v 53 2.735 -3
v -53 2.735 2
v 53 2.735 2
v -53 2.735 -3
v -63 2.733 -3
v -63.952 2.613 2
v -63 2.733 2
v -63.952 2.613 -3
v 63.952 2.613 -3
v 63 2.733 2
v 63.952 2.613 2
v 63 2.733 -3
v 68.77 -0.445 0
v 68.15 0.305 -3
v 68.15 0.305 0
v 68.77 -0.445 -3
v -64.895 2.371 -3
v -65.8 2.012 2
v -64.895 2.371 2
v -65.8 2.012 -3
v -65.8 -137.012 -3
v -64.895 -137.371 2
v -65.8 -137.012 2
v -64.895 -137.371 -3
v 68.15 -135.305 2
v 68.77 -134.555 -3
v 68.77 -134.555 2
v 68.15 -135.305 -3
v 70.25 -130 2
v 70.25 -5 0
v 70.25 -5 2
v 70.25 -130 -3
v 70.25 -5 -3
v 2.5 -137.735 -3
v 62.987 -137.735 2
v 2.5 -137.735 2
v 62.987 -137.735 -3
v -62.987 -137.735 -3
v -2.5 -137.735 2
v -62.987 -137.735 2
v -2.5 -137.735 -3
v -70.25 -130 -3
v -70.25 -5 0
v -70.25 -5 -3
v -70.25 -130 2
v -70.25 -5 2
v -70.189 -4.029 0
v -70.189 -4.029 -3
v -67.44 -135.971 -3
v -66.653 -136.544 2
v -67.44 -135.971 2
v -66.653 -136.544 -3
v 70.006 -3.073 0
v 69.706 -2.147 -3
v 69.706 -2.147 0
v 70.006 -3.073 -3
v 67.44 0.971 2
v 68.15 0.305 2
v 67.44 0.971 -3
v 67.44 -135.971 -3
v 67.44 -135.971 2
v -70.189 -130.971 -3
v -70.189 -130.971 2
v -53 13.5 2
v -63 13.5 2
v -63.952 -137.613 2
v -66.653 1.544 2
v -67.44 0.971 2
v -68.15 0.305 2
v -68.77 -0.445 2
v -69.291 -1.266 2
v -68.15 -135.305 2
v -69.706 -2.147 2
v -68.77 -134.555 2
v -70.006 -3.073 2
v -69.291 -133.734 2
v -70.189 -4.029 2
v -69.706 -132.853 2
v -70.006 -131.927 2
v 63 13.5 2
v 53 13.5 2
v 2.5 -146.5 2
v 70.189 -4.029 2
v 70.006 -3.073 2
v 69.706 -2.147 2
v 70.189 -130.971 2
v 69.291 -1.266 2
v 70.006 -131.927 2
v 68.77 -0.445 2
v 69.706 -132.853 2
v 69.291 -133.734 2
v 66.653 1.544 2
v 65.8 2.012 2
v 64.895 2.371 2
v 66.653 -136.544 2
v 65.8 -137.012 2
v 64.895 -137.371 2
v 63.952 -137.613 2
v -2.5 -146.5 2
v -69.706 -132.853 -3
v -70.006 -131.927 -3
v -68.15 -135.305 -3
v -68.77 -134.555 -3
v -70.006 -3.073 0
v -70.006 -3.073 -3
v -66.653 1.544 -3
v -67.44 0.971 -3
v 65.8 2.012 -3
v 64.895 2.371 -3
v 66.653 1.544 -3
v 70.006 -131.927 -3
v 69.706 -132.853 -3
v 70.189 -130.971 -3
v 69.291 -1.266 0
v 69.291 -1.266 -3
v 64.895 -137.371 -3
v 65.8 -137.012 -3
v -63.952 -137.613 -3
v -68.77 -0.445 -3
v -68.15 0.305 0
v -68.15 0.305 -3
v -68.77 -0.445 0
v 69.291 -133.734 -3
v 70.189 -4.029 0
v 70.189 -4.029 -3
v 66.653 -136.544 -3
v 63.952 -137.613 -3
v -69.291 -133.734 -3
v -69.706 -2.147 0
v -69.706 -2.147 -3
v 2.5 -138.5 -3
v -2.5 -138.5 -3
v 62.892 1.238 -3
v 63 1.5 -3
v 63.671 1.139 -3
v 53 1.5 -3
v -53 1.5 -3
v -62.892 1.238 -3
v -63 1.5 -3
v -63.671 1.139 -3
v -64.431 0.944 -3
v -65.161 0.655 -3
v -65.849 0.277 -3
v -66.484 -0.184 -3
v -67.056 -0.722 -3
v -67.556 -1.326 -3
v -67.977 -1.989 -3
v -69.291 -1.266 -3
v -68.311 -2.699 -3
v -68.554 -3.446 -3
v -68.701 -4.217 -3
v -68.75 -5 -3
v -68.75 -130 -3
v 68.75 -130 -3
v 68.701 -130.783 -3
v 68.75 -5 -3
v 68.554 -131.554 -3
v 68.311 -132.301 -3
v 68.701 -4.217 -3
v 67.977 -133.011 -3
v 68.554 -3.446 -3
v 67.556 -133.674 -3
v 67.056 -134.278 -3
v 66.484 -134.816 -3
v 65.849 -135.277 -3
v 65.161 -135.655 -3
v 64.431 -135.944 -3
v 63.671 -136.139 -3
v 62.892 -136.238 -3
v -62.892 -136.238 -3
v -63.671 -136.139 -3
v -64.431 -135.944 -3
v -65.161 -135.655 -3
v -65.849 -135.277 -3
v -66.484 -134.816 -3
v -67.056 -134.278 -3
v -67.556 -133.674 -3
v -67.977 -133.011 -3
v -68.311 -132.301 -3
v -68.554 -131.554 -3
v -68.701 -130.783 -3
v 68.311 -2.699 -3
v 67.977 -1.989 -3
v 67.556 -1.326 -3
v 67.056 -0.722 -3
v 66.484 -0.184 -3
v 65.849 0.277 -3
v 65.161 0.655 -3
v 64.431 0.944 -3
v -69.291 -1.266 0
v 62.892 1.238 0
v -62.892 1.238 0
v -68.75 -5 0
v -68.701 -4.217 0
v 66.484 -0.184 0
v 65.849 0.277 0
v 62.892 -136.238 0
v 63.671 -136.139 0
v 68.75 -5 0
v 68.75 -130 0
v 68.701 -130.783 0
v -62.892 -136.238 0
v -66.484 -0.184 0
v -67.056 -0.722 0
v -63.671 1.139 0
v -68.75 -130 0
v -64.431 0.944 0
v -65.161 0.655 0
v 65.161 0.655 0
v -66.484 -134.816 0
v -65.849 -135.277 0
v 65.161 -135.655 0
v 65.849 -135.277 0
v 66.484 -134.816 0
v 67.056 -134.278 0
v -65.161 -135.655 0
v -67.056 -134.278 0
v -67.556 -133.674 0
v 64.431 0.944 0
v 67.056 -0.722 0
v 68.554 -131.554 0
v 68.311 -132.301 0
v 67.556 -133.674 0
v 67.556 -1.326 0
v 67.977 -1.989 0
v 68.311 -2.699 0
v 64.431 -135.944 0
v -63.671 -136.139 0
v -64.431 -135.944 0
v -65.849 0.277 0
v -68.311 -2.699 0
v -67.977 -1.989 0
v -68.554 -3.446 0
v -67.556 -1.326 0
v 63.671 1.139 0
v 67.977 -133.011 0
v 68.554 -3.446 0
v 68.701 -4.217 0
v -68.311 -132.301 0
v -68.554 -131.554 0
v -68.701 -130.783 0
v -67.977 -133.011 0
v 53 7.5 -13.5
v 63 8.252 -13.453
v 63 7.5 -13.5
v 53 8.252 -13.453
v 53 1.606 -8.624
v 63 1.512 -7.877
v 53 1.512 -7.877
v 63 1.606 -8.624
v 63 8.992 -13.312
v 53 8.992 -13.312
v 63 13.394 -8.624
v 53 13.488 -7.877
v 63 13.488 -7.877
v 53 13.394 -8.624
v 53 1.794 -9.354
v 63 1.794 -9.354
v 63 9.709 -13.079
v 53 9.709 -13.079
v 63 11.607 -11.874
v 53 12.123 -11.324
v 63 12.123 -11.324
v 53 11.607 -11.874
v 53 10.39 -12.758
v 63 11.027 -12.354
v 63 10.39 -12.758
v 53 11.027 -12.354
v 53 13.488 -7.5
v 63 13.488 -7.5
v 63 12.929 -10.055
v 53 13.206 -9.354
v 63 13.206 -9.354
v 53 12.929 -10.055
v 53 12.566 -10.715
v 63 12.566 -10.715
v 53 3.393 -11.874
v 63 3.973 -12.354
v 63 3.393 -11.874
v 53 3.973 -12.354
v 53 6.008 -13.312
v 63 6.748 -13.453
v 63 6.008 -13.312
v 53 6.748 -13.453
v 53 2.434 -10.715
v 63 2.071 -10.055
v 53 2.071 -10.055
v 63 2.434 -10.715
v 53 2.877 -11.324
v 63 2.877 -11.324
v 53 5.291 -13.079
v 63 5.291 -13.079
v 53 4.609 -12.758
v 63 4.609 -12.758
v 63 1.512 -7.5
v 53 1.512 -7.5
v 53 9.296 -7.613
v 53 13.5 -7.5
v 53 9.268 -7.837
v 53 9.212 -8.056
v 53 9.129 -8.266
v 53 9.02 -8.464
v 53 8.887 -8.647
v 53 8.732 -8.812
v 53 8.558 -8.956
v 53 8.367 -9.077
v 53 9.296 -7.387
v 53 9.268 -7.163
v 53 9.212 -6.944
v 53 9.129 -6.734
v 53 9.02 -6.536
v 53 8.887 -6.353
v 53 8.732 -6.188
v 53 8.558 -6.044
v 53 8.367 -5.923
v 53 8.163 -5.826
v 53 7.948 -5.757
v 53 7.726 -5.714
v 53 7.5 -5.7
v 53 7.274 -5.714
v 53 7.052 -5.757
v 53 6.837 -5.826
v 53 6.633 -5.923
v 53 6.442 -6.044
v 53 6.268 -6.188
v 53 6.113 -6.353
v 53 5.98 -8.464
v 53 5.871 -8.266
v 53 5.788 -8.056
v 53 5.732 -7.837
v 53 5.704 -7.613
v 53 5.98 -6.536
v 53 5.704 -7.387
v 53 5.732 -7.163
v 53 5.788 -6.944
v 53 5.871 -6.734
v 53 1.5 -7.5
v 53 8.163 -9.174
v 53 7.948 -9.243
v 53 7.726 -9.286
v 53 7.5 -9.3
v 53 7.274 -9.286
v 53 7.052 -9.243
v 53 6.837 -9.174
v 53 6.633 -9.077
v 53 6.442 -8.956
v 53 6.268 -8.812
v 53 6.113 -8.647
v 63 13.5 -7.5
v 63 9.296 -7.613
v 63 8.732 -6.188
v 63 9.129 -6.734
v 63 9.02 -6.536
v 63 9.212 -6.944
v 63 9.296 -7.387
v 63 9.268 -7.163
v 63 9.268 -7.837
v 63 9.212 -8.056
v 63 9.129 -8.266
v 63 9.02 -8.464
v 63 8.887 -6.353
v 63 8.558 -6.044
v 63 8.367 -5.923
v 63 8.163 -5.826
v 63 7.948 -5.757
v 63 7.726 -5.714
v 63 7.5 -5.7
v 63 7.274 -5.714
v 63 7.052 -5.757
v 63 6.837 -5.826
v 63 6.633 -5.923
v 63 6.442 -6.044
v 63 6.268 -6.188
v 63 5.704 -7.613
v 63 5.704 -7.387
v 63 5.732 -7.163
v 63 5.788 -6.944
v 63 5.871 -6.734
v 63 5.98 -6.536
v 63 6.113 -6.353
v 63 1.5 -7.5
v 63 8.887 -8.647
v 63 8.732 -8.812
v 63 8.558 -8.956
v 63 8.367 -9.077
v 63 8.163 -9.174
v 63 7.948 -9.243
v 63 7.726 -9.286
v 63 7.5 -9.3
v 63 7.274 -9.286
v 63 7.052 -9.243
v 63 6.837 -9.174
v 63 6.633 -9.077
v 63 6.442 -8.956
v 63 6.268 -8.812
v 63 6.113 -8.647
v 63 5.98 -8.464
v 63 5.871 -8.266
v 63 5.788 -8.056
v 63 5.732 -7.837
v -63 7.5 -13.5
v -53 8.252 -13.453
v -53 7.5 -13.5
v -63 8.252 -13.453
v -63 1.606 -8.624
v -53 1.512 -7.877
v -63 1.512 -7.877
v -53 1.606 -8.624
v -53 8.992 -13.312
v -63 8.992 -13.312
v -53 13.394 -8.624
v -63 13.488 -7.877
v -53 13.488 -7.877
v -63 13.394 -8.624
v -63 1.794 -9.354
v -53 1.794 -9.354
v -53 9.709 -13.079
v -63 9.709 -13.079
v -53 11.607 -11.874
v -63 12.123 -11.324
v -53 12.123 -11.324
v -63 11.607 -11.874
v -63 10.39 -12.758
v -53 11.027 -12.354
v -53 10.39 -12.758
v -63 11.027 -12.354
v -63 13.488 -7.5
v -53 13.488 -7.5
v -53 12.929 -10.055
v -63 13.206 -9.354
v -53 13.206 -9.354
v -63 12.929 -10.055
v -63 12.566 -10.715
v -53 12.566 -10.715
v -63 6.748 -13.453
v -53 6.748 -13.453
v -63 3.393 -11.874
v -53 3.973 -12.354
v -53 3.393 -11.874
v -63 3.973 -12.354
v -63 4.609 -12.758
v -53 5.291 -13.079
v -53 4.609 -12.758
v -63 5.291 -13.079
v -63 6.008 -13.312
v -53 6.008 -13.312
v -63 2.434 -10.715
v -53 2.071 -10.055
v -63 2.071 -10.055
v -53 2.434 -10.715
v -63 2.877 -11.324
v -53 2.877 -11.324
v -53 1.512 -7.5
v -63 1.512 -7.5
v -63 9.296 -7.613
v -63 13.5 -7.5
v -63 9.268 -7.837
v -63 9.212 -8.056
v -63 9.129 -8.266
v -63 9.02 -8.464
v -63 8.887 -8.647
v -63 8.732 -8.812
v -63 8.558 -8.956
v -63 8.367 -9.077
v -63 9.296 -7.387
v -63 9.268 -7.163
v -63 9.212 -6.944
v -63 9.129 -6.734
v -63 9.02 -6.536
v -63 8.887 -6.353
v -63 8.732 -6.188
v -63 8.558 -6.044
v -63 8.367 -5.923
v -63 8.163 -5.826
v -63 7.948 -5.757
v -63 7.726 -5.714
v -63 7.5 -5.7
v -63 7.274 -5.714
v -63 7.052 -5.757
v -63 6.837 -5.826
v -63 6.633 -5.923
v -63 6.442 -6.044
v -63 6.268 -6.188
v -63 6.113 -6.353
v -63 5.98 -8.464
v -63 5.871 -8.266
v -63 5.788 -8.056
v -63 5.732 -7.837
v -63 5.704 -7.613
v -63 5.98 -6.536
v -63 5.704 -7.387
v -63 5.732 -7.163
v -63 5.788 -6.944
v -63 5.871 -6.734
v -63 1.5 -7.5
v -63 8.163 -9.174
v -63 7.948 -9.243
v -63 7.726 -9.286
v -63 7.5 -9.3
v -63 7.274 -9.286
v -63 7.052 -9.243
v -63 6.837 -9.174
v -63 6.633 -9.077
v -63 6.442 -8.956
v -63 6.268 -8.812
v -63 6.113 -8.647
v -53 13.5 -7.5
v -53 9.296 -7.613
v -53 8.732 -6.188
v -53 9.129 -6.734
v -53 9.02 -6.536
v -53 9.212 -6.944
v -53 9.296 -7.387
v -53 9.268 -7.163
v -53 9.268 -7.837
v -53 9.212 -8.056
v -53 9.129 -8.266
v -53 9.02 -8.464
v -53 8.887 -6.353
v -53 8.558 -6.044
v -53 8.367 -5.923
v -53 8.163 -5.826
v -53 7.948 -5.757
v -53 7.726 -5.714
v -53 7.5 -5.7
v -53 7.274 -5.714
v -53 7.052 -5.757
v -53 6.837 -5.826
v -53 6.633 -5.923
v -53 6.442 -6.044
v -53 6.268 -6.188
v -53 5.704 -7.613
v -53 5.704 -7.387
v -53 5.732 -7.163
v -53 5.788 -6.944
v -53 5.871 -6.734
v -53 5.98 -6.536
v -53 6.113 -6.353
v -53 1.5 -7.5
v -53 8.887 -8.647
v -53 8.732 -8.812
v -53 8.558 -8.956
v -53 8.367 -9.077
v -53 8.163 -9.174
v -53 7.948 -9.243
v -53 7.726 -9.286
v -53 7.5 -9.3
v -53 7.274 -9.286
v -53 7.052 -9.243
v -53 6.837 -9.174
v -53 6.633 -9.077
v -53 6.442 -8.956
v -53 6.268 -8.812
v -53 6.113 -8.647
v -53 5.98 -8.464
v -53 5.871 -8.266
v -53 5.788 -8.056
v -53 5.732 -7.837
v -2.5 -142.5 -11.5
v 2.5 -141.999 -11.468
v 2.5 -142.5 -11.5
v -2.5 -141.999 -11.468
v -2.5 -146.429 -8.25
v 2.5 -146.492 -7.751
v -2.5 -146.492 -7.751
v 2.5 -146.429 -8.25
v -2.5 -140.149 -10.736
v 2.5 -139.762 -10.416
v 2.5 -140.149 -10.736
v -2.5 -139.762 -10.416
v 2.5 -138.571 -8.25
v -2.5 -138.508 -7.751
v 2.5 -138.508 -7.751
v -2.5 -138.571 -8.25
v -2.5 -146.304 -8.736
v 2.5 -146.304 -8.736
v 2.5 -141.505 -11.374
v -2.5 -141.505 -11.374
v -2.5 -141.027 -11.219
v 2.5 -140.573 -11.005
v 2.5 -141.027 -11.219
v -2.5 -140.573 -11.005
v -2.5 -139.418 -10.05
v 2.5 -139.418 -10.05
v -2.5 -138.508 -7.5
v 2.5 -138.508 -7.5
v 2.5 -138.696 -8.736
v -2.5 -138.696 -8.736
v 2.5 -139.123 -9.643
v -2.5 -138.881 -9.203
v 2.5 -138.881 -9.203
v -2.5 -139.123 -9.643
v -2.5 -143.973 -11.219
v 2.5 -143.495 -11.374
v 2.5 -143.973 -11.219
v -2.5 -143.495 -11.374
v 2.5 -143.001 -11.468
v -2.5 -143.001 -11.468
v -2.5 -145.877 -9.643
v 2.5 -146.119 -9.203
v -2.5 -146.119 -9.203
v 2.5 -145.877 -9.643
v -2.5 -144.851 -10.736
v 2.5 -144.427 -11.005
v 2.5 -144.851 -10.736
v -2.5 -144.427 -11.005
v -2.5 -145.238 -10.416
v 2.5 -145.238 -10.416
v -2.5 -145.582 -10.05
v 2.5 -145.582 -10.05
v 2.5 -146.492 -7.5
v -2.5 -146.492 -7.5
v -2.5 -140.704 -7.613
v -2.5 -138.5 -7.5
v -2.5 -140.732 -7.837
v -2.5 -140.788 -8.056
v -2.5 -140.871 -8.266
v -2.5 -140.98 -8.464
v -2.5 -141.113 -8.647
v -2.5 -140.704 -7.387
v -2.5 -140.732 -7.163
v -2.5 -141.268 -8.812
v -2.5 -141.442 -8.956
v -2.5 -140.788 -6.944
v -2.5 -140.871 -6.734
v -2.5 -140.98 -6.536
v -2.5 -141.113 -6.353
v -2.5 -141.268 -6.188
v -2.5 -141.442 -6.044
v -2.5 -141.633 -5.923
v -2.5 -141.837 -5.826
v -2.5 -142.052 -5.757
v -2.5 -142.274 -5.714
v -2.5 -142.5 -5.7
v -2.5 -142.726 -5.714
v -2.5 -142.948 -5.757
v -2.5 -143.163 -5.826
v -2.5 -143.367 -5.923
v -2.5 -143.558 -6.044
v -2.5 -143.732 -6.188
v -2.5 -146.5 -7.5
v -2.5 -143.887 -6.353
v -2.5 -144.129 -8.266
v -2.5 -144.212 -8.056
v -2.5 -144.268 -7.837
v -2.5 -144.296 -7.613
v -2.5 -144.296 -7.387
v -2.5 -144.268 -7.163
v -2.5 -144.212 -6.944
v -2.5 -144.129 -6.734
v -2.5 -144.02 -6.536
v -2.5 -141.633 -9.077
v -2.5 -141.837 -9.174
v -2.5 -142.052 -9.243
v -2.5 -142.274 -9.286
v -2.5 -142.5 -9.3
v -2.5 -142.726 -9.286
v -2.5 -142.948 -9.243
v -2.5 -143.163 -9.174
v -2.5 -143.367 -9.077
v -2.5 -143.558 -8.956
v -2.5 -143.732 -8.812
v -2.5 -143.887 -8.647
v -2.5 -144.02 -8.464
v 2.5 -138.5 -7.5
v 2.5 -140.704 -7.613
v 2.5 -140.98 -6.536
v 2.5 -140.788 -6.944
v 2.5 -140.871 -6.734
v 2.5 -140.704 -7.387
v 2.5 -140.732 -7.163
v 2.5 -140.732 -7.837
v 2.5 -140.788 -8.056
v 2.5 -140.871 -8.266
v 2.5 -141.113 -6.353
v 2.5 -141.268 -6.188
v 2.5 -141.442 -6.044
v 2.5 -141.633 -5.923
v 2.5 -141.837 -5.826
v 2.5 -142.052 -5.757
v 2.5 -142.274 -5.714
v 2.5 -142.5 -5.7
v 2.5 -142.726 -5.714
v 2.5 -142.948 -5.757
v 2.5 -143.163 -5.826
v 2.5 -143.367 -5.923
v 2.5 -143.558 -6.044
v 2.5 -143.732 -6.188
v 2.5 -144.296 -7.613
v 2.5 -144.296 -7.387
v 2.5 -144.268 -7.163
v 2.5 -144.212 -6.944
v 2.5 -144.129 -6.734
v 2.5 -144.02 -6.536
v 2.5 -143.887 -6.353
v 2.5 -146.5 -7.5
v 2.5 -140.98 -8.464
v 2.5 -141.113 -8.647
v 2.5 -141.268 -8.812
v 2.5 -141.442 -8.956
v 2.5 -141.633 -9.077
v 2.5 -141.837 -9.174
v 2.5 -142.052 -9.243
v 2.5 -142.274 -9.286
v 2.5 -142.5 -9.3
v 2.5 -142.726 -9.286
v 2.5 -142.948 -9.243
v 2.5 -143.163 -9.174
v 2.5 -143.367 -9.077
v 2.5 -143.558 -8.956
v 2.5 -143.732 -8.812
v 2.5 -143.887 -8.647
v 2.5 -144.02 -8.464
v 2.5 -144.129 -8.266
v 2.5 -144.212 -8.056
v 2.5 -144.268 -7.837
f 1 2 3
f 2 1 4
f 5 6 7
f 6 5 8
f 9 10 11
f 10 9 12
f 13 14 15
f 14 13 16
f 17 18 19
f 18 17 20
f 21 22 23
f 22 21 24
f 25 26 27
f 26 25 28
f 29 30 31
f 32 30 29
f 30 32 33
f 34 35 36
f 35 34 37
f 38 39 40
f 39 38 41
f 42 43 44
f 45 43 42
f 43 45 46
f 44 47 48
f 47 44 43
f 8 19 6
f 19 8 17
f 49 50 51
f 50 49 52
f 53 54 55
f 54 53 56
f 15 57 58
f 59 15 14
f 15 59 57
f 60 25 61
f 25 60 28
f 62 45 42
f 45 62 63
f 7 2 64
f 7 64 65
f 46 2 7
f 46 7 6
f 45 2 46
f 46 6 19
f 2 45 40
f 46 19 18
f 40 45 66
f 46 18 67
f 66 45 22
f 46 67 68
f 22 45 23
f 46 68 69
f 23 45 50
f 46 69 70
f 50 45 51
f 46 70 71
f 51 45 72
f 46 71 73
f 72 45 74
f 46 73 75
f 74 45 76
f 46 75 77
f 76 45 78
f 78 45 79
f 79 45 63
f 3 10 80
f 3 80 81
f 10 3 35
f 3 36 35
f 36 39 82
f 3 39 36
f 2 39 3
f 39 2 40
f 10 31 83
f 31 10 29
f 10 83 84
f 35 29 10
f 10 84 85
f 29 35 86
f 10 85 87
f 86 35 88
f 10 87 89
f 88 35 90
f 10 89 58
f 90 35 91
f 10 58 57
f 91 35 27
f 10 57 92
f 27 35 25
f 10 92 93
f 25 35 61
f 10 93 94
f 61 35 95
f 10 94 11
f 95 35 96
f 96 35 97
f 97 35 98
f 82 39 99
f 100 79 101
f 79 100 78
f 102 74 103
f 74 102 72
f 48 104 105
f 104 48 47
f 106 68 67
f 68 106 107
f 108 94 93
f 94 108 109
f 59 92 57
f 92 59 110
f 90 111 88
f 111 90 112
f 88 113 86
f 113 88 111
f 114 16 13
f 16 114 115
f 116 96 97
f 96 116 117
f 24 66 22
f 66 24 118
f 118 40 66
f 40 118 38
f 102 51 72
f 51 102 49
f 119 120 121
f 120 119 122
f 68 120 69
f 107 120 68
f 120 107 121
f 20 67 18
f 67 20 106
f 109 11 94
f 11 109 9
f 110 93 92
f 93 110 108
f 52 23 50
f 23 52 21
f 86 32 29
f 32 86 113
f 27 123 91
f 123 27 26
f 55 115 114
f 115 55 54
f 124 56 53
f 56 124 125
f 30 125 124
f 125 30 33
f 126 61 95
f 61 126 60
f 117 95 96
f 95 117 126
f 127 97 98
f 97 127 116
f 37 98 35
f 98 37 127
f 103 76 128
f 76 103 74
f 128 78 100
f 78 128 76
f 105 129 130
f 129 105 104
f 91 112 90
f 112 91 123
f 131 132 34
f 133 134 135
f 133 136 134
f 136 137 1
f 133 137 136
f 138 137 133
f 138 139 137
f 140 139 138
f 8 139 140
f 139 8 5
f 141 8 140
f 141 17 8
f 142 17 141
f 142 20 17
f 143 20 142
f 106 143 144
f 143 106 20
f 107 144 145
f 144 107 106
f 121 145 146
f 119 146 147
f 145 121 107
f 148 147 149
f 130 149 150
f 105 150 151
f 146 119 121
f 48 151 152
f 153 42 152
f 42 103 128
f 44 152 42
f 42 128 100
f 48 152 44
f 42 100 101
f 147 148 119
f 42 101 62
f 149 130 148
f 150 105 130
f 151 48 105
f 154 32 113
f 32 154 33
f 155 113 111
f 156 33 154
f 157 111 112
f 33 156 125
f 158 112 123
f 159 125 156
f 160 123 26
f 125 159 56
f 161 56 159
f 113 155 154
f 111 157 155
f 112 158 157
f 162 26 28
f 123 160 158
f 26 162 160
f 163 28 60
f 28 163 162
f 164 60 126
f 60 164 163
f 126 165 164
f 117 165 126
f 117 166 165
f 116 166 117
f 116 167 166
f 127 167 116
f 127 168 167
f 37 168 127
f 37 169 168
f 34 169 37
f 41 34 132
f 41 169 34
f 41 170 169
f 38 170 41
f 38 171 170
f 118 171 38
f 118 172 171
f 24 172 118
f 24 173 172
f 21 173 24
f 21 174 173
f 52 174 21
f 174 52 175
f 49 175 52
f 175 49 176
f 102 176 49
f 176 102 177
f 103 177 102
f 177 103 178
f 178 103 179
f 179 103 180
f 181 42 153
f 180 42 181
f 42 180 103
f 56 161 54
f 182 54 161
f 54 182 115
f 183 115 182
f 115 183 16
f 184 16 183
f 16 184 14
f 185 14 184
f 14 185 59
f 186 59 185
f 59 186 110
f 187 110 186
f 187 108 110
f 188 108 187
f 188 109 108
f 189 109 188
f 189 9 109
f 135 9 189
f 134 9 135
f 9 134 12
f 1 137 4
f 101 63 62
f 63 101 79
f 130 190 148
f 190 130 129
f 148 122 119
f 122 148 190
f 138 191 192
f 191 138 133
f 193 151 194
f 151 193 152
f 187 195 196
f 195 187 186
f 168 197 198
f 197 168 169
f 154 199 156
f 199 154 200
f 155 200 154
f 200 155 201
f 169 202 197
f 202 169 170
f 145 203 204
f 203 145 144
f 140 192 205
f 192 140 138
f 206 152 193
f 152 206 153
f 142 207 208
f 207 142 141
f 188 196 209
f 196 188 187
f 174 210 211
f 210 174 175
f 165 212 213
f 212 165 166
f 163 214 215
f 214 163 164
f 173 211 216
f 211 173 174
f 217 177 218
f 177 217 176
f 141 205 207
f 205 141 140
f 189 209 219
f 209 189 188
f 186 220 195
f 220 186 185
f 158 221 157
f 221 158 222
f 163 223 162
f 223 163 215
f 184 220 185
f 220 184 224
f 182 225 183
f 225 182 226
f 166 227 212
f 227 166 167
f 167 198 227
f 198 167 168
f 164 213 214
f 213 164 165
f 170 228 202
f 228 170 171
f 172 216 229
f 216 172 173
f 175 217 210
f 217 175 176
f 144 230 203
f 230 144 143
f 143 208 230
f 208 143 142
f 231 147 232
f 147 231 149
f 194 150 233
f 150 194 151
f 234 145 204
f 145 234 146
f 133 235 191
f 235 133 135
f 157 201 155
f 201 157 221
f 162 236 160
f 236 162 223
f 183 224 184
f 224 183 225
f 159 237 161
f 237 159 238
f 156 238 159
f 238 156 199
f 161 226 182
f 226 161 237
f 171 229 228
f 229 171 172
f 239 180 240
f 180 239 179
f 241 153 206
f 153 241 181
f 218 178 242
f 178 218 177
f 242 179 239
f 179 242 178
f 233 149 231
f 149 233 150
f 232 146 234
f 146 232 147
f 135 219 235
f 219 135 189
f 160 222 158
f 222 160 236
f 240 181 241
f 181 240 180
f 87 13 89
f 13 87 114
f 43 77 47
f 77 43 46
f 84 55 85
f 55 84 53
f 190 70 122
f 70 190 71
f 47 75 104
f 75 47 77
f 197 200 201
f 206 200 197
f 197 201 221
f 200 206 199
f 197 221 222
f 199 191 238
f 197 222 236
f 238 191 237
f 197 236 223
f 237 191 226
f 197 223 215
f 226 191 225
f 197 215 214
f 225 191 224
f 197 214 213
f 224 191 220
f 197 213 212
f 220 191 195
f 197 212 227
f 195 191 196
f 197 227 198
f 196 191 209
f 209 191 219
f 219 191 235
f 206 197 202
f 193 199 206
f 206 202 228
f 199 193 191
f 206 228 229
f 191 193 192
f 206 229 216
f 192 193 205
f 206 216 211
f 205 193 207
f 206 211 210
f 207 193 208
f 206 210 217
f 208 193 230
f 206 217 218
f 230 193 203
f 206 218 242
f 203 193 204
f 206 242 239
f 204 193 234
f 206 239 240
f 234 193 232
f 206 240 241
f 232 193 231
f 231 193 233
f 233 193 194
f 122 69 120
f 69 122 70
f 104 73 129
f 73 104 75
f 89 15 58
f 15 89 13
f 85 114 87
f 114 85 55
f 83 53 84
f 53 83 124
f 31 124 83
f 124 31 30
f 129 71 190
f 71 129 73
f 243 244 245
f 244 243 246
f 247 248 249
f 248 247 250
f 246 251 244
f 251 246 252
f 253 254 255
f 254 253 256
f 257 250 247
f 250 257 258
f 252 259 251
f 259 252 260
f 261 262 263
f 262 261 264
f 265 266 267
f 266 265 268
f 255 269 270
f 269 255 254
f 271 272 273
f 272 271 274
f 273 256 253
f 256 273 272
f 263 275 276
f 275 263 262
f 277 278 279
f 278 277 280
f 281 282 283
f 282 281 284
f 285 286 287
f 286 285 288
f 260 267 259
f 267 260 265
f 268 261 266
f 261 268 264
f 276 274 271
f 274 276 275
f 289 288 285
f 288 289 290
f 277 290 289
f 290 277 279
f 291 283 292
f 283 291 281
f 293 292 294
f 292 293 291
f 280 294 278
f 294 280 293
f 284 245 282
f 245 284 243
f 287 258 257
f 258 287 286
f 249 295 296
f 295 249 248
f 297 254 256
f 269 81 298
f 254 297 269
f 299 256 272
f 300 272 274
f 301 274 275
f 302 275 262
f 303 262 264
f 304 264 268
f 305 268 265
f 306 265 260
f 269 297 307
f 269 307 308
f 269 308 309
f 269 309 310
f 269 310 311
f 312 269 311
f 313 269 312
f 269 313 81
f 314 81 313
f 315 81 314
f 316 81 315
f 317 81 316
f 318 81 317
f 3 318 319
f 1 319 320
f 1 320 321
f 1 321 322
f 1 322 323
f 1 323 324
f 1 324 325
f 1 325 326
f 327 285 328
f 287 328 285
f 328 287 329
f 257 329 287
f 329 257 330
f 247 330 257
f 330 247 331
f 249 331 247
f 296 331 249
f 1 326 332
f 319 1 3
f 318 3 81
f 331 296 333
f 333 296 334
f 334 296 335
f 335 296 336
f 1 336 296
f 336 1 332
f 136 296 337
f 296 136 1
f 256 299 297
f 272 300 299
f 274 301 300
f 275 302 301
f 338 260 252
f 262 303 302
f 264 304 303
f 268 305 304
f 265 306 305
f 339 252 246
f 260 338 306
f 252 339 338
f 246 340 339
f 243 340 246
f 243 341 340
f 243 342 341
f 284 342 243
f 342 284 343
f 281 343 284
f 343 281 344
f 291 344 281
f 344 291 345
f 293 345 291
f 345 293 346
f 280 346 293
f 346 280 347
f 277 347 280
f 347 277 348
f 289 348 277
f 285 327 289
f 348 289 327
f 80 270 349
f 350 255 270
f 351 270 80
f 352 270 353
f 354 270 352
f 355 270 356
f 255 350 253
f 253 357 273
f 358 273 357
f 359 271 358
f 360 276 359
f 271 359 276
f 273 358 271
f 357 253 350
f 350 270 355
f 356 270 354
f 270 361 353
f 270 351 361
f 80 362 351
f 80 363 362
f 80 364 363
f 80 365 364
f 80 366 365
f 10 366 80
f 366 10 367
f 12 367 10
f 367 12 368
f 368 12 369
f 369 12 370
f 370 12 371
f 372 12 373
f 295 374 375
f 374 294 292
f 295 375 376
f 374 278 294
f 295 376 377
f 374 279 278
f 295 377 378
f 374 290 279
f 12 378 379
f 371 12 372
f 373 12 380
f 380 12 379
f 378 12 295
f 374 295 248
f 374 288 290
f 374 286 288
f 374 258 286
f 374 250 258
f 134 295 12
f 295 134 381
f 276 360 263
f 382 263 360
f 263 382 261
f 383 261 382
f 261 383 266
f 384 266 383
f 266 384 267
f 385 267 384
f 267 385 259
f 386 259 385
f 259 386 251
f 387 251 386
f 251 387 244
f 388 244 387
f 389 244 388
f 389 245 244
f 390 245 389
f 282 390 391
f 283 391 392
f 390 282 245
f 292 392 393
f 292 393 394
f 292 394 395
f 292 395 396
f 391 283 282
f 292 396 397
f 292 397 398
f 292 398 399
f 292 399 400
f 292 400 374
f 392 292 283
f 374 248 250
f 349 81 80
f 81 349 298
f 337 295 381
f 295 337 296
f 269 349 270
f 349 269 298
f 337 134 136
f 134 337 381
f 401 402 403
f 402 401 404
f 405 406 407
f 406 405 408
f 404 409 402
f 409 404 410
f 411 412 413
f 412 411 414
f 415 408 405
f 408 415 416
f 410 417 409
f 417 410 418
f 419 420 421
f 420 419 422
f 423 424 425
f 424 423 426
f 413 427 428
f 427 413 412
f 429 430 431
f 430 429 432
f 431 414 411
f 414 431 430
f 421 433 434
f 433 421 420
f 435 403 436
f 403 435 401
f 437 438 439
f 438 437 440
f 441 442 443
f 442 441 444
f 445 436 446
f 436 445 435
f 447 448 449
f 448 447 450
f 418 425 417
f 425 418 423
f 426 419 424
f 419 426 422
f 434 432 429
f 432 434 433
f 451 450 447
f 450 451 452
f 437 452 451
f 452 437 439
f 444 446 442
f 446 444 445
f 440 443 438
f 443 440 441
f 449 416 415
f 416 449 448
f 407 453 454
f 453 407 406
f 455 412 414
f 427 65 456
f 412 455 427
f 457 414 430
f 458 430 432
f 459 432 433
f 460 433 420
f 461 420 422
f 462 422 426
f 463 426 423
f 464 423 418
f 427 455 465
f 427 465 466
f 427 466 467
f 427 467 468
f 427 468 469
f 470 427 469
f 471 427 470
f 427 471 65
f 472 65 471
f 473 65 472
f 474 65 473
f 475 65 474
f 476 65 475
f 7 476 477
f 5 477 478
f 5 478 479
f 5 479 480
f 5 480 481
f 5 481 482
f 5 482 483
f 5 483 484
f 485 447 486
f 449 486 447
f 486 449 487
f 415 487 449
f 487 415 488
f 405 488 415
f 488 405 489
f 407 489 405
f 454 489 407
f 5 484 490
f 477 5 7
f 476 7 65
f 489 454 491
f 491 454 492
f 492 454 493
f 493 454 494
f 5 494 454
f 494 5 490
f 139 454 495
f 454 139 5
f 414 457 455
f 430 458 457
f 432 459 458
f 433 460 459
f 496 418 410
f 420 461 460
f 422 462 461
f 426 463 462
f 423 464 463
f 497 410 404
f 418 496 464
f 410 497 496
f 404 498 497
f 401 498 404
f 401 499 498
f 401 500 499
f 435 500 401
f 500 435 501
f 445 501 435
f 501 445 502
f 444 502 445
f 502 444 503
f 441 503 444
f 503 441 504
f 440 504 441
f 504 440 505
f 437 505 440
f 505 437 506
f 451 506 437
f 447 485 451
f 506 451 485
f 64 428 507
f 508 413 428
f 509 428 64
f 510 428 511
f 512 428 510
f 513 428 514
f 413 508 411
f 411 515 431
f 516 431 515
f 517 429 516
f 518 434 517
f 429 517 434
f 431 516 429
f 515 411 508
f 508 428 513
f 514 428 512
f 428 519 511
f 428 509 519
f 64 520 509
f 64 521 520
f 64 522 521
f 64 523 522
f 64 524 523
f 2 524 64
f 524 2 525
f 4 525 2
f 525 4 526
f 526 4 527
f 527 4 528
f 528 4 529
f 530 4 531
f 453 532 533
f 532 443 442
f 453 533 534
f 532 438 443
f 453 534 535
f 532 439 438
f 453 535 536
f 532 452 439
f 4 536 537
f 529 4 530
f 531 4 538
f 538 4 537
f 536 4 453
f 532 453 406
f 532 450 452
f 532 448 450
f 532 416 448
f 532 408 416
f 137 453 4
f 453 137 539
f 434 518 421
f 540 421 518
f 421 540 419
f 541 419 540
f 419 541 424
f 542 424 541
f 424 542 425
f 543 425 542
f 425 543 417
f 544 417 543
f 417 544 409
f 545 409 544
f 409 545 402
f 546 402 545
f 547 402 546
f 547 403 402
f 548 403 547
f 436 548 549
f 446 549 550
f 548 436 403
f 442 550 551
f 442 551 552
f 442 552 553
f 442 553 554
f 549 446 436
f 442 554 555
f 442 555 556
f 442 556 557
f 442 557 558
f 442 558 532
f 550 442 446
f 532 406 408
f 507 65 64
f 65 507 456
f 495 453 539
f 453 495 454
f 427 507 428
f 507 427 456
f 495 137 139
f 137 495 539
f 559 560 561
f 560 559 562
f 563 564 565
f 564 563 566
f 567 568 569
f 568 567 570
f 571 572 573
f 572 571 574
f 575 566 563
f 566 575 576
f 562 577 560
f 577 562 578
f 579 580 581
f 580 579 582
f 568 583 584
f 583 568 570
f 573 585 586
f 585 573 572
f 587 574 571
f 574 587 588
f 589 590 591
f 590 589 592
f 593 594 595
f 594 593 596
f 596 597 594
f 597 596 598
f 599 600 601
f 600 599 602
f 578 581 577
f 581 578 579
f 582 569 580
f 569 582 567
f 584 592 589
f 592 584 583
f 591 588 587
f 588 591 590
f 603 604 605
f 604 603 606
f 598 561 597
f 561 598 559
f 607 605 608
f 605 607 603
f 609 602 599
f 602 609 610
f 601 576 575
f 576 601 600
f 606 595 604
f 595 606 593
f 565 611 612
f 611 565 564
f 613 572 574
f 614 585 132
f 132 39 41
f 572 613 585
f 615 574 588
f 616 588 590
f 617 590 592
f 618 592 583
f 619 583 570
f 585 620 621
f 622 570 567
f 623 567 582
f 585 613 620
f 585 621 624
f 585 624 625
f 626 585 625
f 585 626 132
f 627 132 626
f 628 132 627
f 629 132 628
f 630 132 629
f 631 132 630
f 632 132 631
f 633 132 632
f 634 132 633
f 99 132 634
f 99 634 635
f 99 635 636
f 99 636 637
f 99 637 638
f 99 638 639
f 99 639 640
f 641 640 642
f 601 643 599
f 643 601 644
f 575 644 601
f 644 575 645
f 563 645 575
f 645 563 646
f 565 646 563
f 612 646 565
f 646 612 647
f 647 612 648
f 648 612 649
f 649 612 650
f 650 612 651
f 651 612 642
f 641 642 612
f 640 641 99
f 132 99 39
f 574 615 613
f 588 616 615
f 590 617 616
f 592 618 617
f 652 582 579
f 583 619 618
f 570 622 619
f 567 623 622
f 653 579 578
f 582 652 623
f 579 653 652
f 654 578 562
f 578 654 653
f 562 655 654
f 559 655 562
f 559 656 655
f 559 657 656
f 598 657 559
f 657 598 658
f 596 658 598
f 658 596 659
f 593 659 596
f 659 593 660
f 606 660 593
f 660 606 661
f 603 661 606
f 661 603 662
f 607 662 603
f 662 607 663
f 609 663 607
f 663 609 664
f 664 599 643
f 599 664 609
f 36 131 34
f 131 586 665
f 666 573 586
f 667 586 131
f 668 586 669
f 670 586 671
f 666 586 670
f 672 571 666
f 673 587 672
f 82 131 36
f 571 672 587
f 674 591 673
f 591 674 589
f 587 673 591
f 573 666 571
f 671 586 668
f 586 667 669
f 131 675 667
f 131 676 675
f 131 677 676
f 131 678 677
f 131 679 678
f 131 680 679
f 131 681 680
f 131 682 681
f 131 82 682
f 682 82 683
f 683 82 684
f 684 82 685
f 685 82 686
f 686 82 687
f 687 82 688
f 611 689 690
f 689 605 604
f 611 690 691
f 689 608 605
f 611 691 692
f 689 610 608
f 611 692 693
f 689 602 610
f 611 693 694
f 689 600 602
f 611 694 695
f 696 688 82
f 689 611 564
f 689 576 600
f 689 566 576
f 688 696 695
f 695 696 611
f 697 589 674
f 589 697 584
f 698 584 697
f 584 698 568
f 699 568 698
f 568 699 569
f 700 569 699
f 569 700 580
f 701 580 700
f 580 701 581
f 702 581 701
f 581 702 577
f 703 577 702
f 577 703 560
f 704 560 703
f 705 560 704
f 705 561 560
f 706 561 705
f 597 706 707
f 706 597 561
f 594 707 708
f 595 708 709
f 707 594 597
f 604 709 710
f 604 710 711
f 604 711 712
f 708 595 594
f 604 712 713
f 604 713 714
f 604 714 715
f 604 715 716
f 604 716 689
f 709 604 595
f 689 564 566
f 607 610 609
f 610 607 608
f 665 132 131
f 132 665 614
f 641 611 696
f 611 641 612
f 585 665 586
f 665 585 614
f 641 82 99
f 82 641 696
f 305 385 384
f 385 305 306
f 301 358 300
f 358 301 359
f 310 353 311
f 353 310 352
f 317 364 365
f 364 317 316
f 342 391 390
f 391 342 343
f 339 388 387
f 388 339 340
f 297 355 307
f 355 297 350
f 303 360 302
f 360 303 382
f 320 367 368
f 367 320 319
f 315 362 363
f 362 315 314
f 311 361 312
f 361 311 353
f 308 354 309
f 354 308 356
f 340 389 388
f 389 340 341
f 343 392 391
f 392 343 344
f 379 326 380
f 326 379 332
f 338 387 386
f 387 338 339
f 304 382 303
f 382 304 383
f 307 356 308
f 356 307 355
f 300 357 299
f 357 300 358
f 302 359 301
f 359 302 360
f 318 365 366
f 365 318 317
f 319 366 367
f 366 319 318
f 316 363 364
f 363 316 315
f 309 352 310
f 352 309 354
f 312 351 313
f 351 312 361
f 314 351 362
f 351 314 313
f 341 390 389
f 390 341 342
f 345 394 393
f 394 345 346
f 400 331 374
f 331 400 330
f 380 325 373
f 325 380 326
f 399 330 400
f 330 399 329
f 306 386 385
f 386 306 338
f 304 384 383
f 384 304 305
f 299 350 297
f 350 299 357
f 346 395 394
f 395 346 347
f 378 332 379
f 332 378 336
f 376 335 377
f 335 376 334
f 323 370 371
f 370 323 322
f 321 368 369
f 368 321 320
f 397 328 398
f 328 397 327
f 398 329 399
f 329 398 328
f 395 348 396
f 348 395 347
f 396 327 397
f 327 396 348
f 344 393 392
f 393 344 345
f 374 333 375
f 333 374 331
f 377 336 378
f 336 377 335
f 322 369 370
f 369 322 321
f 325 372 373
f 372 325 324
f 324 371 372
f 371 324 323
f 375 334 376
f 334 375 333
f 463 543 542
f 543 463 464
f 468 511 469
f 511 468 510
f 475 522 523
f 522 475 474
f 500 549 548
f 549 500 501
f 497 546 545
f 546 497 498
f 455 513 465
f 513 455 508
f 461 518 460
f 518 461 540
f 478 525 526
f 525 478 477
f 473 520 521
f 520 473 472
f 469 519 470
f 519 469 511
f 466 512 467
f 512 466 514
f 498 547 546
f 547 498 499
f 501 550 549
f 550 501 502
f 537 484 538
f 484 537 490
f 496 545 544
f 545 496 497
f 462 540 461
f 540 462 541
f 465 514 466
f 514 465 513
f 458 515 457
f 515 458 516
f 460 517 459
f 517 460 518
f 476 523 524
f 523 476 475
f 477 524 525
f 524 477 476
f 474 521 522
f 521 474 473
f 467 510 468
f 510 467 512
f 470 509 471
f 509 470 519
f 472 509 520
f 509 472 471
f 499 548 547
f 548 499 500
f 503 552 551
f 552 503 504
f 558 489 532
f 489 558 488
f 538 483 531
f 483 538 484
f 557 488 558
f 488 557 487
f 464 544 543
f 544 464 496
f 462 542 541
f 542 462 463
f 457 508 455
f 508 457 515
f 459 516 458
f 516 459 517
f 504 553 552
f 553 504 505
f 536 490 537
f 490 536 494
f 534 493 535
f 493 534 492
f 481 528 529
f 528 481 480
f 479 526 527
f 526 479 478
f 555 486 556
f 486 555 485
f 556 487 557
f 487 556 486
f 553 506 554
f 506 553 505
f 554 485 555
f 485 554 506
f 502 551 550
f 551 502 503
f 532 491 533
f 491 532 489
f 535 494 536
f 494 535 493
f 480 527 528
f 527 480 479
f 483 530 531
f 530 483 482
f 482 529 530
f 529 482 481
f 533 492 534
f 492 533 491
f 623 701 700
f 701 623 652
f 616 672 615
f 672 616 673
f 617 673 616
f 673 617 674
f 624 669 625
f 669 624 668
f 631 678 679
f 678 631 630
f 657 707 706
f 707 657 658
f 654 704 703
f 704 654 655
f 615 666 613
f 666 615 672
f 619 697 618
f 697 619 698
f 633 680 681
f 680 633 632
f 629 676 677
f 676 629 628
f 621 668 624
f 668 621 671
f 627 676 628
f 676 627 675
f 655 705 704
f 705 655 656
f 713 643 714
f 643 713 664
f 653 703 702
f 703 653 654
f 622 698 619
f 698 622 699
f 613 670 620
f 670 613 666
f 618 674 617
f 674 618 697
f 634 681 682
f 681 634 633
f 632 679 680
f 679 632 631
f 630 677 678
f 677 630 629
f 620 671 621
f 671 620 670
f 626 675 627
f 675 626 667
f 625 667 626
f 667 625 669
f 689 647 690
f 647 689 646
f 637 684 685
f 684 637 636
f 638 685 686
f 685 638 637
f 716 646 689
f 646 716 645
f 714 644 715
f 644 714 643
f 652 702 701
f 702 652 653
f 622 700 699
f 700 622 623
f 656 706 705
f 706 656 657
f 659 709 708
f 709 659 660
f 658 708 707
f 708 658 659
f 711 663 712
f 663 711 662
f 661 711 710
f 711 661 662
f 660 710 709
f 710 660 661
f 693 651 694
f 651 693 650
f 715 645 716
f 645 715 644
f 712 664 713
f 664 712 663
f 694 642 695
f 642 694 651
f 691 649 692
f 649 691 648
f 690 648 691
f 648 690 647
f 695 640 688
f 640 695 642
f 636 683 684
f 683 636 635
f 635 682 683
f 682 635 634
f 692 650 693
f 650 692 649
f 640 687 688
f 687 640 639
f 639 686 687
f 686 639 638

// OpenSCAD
$fn = 50;


difference() {
	union() {
		translate(v = [0, -67.5000000000, -3]) {
			rotate(a = [0, 0, 0]) {
				difference() {
					union() {
						hull() {
							translate(v = [-62.5000000000, 62.5000000000, 0]) {
								cylinder(h = 5, r = 7.7500000000);
							}
							translate(v = [62.5000000000, 62.5000000000, 0]) {
								cylinder(h = 5, r = 7.7500000000);
							}
							translate(v = [-62.5000000000, -62.5000000000, 0]) {
								cylinder(h = 5, r = 7.7500000000);
							}
							translate(v = [62.5000000000, -62.5000000000, 0]) {
								cylinder(h = 5, r = 7.7500000000);
							}
						}
					}
					union() {
						hull() {
							translate(v = [-62.5000000000, 62.5000000000, 0]) {
								cylinder(h = 5, r = 6.2500000000);
							}
							translate(v = [62.5000000000, 62.5000000000, 0]) {
								cylinder(h = 5, r = 6.2500000000);
							}
							translate(v = [-62.5000000000, -62.5000000000, 0]) {
								cylinder(h = 5, r = 6.2500000000);
							}
							translate(v = [62.5000000000, -62.5000000000, 0]) {
								cylinder(h = 5, r = 6.2500000000);
							}
						}
					}
				}
			}
		}
		translate(v = [0, -67.5000000000, 0]) {
			hull() {
				translate(v = [-62.5000000000, 62.5000000000, 0]) {
					cylinder(h = 2, r = 7.7500000000);
				}
				translate(v = [62.5000000000, 62.5000000000, 0]) {
					cylinder(h = 2, r = 7.7500000000);
				}
				translate(v = [-62.5000000000, -62.5000000000, 0]) {
					cylinder(h = 2, r = 7.7500000000);
				}
				translate(v = [62.5000000000, -62.5000000000, 0]) {
					cylinder(h = 2, r = 7.7500000000);
				}
			}
		}
		translate(v = [53.0000000000, 7.5000000000, -7.5000000000]) {
			rotate(a = [0, 90, 0]) {
				cylinder(h = 10, r = 6.0000000000);
			}
		}
		translate(v = [53.0000000000, 1.5000000000, -7.5000000000]) {
			cube(size = [10, 12, 7.5000000000]);
		}
		translate(v = [53.0000000000, -15.0000000000, 0.0000000000]) {
			cube(size = [10, 28.5000000000, 2]);
		}
		translate(v = [-63.0000000000, 7.5000000000, -7.5000000000]) {
			rotate(a = [0, 90, 0]) {
				cylinder(h = 10, r = 6.0000000000);
			}
		}
		translate(v = [-63.0000000000, 1.5000000000, -7.5000000000]) {
			cube(size = [10, 12, 7.5000000000]);
		}
		translate(v = [-63.0000000000, -15.0000000000, 0.0000000000]) {
			cube(size = [10, 28.5000000000, 2]);
		}
		translate(v = [-2.5000000000, -142.5000000000, -7.5000000000]) {
			rotate(a = [0, 90, 0]) {
				cylinder(h = 5, r = 4.0000000000);
			}
		}
		translate(v = [-2.5000000000, -146.5000000000, -7.5000000000]) {
			cube(size = [5, 8, 7.5000000000]);
		}
		translate(v = [-2.5000000000, -146.5000000000, -3.0000000000]) {
			cube(size = [5, 10.2500000000, 5]);
		}
	}
	union() {
		translate(v = [53.0000000000, 7.5000000000, -7.5000000000]) {
			rotate(a = [0, 90, 0]) {
				cylinder(h = 10, r = 1.8000000000);
			}
		}
		translate(v = [-63.0000000000, 7.5000000000, -7.5000000000]) {
			rotate(a = [0, 90, 0]) {
				cylinder(h = 10, r = 1.8000000000);
			}
		}
		translate(v = [-5.0000000000, -142.5000000000, -7.5000000000]) {
			rotate(a = [0, 90, 0]) {
				cylinder(h = 10, r = 1.8000000000);
			}
		}
	}
}
